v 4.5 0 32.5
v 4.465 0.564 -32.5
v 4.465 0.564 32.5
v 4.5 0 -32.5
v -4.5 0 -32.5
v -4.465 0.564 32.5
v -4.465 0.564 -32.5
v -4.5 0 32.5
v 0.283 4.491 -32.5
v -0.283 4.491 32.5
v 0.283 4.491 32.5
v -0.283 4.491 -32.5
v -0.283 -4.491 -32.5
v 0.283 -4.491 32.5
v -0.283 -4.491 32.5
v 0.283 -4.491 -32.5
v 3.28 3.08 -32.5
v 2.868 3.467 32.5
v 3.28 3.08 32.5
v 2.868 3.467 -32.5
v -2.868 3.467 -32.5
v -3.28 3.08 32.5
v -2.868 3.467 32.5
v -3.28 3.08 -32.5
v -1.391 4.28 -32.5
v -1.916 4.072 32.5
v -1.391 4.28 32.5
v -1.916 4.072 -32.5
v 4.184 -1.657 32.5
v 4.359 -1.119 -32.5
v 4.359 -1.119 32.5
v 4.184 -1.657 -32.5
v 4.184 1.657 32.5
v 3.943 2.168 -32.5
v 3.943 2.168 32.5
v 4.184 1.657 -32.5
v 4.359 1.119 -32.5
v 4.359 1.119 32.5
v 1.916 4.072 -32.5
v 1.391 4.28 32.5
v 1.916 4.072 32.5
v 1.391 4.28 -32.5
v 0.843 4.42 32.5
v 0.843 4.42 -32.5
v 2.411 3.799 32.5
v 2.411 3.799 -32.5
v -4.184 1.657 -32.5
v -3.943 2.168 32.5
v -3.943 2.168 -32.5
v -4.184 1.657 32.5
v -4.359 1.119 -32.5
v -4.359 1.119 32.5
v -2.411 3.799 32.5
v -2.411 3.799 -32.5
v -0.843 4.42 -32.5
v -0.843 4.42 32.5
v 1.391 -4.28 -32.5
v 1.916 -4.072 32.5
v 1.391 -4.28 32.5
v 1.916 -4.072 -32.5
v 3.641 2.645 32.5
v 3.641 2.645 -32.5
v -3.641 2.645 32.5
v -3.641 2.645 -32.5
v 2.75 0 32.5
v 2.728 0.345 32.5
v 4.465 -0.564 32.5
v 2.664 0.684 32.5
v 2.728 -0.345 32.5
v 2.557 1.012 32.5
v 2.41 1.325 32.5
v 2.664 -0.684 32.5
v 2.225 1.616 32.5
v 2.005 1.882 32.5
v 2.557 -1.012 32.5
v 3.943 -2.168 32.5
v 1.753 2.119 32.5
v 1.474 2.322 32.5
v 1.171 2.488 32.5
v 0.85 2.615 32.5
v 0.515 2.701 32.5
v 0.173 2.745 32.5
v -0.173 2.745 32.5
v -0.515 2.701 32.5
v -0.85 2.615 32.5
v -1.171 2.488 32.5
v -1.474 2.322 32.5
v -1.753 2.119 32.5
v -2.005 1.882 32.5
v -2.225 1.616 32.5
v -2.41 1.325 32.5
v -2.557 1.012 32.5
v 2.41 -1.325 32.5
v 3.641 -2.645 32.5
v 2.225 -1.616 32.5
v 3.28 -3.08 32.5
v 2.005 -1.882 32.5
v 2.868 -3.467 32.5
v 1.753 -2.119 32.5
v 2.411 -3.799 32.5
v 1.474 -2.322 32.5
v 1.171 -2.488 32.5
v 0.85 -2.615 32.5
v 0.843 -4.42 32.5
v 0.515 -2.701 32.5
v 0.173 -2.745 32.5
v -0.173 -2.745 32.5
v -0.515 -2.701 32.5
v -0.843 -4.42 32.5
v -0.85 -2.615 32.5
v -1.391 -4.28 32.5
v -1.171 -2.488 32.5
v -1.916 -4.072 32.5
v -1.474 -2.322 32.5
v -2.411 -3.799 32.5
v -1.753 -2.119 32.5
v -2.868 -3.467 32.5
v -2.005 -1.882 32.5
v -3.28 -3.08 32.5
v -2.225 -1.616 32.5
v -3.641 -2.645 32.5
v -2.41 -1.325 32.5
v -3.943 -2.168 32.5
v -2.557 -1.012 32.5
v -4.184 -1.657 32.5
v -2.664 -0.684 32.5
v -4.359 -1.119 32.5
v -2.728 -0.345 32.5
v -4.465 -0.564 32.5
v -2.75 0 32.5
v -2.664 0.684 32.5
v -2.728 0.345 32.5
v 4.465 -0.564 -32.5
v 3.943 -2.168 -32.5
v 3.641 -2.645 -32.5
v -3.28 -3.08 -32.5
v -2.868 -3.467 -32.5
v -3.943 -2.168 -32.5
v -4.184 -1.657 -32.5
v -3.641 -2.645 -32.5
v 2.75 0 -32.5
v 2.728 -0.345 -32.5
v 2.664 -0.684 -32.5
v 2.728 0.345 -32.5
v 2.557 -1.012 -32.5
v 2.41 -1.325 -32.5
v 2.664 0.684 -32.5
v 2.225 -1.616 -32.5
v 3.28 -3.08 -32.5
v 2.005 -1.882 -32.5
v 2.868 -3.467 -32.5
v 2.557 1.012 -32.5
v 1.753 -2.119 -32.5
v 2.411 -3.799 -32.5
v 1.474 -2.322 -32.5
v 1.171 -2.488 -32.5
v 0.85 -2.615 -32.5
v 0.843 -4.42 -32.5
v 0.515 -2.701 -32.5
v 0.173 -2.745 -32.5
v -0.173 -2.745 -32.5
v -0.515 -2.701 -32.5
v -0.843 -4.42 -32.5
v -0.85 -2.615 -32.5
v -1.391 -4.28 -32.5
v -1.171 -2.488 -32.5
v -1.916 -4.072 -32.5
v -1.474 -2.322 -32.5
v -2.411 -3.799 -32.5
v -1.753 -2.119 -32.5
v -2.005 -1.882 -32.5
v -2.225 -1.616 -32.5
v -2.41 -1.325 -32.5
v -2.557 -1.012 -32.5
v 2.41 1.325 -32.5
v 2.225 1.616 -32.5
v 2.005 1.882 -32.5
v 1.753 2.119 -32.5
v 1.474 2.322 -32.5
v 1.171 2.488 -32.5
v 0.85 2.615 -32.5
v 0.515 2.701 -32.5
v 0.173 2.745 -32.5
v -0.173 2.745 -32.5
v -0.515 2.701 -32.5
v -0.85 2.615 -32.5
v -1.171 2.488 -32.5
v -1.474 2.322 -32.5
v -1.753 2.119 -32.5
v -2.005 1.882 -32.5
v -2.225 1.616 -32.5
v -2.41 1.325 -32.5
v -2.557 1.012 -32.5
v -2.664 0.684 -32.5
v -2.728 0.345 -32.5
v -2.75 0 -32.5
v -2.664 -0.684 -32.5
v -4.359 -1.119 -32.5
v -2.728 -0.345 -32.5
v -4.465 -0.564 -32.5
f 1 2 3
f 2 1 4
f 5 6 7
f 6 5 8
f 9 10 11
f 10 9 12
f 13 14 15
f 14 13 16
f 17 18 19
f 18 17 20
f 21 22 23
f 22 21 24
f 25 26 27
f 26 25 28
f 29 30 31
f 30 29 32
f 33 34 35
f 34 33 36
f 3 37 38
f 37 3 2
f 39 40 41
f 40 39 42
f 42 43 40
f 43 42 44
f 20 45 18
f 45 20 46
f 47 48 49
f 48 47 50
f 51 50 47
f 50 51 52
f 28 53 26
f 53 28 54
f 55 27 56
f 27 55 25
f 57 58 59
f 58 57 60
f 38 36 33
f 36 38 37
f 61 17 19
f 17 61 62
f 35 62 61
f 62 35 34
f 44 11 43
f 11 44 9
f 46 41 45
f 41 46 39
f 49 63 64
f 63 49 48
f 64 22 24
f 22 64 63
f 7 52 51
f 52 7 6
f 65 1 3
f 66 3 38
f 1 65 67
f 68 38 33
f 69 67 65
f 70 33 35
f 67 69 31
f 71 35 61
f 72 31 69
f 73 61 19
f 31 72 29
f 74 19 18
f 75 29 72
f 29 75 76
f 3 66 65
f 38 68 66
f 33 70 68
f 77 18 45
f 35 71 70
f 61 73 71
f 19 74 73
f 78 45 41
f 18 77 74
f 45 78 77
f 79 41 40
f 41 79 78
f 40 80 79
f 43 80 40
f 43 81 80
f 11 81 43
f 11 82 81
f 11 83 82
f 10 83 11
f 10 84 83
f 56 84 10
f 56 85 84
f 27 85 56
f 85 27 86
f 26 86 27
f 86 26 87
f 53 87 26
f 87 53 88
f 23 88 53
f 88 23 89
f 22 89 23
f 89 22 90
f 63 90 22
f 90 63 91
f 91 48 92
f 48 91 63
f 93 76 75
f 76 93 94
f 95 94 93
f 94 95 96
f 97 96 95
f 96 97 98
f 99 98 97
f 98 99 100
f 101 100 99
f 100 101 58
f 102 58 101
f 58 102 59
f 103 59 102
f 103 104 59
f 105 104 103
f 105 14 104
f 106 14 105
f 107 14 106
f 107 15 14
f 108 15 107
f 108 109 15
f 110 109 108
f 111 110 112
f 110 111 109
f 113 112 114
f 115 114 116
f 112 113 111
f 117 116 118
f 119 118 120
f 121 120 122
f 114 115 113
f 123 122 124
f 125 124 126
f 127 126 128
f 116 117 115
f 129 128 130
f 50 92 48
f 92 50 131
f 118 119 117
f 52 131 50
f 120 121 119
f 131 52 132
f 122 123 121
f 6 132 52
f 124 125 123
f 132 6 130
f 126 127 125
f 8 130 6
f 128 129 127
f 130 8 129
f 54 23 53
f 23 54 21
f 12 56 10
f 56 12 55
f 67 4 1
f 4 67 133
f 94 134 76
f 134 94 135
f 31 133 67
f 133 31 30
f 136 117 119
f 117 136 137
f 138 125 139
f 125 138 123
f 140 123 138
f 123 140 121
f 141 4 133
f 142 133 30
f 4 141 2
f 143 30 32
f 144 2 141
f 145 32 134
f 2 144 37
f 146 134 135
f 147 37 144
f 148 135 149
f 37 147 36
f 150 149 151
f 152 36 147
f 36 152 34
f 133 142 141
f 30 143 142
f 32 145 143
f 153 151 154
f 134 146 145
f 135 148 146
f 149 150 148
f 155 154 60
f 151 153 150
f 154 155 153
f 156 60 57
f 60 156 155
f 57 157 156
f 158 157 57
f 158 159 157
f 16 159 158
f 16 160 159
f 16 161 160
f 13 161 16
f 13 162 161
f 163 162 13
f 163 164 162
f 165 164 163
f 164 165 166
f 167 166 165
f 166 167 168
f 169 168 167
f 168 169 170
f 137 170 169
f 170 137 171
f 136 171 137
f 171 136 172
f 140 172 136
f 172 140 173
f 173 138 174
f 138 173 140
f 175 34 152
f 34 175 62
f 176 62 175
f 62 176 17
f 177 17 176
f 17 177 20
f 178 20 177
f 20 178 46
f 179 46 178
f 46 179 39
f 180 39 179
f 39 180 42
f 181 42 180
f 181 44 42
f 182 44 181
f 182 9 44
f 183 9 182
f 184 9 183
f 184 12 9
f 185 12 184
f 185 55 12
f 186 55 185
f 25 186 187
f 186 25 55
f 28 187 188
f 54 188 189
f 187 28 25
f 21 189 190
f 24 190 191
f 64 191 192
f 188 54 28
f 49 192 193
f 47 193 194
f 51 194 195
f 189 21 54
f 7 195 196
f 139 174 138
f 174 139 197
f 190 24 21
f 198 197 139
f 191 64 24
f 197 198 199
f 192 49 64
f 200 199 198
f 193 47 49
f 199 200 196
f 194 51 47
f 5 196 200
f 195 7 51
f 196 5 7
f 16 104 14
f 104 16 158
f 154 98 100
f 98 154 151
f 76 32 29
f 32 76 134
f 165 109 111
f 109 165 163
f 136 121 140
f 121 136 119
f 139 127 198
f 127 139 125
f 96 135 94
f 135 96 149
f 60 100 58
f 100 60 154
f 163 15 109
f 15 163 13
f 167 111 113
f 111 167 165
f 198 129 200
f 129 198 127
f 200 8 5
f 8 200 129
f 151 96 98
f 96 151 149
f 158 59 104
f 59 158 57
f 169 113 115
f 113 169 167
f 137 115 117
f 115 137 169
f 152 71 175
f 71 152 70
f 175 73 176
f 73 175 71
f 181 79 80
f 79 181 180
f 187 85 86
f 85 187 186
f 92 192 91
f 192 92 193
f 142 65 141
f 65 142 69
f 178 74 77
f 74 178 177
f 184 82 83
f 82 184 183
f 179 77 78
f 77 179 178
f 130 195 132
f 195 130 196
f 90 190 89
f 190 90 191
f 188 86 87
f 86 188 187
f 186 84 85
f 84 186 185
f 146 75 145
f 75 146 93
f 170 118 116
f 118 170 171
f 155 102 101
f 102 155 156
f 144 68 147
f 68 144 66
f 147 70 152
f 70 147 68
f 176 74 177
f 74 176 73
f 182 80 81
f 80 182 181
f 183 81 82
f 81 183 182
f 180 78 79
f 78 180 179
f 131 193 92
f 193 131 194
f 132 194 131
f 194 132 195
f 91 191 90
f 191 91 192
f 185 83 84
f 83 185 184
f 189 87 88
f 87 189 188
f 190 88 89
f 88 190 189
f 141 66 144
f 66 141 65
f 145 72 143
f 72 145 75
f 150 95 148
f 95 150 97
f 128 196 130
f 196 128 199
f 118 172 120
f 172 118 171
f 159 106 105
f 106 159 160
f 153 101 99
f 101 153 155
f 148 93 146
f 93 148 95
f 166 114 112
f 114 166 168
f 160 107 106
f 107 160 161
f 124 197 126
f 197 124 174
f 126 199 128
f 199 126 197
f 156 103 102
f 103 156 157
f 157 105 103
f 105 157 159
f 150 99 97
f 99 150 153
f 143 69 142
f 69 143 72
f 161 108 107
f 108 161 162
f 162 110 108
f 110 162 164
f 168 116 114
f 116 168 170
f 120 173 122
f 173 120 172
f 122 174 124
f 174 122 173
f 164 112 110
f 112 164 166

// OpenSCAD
$fn = 50;


difference() {
	union() {
		translate(v = [0, 0, -32.5000000000]) {
			cylinder(h = 65, r = 4.5000000000);
		}
	}
	union() {
		translate(v = [0, 0, -100.0000000000]) {
			cylinder(h = 200, r = 2.7500000000);
		}
	}
}
